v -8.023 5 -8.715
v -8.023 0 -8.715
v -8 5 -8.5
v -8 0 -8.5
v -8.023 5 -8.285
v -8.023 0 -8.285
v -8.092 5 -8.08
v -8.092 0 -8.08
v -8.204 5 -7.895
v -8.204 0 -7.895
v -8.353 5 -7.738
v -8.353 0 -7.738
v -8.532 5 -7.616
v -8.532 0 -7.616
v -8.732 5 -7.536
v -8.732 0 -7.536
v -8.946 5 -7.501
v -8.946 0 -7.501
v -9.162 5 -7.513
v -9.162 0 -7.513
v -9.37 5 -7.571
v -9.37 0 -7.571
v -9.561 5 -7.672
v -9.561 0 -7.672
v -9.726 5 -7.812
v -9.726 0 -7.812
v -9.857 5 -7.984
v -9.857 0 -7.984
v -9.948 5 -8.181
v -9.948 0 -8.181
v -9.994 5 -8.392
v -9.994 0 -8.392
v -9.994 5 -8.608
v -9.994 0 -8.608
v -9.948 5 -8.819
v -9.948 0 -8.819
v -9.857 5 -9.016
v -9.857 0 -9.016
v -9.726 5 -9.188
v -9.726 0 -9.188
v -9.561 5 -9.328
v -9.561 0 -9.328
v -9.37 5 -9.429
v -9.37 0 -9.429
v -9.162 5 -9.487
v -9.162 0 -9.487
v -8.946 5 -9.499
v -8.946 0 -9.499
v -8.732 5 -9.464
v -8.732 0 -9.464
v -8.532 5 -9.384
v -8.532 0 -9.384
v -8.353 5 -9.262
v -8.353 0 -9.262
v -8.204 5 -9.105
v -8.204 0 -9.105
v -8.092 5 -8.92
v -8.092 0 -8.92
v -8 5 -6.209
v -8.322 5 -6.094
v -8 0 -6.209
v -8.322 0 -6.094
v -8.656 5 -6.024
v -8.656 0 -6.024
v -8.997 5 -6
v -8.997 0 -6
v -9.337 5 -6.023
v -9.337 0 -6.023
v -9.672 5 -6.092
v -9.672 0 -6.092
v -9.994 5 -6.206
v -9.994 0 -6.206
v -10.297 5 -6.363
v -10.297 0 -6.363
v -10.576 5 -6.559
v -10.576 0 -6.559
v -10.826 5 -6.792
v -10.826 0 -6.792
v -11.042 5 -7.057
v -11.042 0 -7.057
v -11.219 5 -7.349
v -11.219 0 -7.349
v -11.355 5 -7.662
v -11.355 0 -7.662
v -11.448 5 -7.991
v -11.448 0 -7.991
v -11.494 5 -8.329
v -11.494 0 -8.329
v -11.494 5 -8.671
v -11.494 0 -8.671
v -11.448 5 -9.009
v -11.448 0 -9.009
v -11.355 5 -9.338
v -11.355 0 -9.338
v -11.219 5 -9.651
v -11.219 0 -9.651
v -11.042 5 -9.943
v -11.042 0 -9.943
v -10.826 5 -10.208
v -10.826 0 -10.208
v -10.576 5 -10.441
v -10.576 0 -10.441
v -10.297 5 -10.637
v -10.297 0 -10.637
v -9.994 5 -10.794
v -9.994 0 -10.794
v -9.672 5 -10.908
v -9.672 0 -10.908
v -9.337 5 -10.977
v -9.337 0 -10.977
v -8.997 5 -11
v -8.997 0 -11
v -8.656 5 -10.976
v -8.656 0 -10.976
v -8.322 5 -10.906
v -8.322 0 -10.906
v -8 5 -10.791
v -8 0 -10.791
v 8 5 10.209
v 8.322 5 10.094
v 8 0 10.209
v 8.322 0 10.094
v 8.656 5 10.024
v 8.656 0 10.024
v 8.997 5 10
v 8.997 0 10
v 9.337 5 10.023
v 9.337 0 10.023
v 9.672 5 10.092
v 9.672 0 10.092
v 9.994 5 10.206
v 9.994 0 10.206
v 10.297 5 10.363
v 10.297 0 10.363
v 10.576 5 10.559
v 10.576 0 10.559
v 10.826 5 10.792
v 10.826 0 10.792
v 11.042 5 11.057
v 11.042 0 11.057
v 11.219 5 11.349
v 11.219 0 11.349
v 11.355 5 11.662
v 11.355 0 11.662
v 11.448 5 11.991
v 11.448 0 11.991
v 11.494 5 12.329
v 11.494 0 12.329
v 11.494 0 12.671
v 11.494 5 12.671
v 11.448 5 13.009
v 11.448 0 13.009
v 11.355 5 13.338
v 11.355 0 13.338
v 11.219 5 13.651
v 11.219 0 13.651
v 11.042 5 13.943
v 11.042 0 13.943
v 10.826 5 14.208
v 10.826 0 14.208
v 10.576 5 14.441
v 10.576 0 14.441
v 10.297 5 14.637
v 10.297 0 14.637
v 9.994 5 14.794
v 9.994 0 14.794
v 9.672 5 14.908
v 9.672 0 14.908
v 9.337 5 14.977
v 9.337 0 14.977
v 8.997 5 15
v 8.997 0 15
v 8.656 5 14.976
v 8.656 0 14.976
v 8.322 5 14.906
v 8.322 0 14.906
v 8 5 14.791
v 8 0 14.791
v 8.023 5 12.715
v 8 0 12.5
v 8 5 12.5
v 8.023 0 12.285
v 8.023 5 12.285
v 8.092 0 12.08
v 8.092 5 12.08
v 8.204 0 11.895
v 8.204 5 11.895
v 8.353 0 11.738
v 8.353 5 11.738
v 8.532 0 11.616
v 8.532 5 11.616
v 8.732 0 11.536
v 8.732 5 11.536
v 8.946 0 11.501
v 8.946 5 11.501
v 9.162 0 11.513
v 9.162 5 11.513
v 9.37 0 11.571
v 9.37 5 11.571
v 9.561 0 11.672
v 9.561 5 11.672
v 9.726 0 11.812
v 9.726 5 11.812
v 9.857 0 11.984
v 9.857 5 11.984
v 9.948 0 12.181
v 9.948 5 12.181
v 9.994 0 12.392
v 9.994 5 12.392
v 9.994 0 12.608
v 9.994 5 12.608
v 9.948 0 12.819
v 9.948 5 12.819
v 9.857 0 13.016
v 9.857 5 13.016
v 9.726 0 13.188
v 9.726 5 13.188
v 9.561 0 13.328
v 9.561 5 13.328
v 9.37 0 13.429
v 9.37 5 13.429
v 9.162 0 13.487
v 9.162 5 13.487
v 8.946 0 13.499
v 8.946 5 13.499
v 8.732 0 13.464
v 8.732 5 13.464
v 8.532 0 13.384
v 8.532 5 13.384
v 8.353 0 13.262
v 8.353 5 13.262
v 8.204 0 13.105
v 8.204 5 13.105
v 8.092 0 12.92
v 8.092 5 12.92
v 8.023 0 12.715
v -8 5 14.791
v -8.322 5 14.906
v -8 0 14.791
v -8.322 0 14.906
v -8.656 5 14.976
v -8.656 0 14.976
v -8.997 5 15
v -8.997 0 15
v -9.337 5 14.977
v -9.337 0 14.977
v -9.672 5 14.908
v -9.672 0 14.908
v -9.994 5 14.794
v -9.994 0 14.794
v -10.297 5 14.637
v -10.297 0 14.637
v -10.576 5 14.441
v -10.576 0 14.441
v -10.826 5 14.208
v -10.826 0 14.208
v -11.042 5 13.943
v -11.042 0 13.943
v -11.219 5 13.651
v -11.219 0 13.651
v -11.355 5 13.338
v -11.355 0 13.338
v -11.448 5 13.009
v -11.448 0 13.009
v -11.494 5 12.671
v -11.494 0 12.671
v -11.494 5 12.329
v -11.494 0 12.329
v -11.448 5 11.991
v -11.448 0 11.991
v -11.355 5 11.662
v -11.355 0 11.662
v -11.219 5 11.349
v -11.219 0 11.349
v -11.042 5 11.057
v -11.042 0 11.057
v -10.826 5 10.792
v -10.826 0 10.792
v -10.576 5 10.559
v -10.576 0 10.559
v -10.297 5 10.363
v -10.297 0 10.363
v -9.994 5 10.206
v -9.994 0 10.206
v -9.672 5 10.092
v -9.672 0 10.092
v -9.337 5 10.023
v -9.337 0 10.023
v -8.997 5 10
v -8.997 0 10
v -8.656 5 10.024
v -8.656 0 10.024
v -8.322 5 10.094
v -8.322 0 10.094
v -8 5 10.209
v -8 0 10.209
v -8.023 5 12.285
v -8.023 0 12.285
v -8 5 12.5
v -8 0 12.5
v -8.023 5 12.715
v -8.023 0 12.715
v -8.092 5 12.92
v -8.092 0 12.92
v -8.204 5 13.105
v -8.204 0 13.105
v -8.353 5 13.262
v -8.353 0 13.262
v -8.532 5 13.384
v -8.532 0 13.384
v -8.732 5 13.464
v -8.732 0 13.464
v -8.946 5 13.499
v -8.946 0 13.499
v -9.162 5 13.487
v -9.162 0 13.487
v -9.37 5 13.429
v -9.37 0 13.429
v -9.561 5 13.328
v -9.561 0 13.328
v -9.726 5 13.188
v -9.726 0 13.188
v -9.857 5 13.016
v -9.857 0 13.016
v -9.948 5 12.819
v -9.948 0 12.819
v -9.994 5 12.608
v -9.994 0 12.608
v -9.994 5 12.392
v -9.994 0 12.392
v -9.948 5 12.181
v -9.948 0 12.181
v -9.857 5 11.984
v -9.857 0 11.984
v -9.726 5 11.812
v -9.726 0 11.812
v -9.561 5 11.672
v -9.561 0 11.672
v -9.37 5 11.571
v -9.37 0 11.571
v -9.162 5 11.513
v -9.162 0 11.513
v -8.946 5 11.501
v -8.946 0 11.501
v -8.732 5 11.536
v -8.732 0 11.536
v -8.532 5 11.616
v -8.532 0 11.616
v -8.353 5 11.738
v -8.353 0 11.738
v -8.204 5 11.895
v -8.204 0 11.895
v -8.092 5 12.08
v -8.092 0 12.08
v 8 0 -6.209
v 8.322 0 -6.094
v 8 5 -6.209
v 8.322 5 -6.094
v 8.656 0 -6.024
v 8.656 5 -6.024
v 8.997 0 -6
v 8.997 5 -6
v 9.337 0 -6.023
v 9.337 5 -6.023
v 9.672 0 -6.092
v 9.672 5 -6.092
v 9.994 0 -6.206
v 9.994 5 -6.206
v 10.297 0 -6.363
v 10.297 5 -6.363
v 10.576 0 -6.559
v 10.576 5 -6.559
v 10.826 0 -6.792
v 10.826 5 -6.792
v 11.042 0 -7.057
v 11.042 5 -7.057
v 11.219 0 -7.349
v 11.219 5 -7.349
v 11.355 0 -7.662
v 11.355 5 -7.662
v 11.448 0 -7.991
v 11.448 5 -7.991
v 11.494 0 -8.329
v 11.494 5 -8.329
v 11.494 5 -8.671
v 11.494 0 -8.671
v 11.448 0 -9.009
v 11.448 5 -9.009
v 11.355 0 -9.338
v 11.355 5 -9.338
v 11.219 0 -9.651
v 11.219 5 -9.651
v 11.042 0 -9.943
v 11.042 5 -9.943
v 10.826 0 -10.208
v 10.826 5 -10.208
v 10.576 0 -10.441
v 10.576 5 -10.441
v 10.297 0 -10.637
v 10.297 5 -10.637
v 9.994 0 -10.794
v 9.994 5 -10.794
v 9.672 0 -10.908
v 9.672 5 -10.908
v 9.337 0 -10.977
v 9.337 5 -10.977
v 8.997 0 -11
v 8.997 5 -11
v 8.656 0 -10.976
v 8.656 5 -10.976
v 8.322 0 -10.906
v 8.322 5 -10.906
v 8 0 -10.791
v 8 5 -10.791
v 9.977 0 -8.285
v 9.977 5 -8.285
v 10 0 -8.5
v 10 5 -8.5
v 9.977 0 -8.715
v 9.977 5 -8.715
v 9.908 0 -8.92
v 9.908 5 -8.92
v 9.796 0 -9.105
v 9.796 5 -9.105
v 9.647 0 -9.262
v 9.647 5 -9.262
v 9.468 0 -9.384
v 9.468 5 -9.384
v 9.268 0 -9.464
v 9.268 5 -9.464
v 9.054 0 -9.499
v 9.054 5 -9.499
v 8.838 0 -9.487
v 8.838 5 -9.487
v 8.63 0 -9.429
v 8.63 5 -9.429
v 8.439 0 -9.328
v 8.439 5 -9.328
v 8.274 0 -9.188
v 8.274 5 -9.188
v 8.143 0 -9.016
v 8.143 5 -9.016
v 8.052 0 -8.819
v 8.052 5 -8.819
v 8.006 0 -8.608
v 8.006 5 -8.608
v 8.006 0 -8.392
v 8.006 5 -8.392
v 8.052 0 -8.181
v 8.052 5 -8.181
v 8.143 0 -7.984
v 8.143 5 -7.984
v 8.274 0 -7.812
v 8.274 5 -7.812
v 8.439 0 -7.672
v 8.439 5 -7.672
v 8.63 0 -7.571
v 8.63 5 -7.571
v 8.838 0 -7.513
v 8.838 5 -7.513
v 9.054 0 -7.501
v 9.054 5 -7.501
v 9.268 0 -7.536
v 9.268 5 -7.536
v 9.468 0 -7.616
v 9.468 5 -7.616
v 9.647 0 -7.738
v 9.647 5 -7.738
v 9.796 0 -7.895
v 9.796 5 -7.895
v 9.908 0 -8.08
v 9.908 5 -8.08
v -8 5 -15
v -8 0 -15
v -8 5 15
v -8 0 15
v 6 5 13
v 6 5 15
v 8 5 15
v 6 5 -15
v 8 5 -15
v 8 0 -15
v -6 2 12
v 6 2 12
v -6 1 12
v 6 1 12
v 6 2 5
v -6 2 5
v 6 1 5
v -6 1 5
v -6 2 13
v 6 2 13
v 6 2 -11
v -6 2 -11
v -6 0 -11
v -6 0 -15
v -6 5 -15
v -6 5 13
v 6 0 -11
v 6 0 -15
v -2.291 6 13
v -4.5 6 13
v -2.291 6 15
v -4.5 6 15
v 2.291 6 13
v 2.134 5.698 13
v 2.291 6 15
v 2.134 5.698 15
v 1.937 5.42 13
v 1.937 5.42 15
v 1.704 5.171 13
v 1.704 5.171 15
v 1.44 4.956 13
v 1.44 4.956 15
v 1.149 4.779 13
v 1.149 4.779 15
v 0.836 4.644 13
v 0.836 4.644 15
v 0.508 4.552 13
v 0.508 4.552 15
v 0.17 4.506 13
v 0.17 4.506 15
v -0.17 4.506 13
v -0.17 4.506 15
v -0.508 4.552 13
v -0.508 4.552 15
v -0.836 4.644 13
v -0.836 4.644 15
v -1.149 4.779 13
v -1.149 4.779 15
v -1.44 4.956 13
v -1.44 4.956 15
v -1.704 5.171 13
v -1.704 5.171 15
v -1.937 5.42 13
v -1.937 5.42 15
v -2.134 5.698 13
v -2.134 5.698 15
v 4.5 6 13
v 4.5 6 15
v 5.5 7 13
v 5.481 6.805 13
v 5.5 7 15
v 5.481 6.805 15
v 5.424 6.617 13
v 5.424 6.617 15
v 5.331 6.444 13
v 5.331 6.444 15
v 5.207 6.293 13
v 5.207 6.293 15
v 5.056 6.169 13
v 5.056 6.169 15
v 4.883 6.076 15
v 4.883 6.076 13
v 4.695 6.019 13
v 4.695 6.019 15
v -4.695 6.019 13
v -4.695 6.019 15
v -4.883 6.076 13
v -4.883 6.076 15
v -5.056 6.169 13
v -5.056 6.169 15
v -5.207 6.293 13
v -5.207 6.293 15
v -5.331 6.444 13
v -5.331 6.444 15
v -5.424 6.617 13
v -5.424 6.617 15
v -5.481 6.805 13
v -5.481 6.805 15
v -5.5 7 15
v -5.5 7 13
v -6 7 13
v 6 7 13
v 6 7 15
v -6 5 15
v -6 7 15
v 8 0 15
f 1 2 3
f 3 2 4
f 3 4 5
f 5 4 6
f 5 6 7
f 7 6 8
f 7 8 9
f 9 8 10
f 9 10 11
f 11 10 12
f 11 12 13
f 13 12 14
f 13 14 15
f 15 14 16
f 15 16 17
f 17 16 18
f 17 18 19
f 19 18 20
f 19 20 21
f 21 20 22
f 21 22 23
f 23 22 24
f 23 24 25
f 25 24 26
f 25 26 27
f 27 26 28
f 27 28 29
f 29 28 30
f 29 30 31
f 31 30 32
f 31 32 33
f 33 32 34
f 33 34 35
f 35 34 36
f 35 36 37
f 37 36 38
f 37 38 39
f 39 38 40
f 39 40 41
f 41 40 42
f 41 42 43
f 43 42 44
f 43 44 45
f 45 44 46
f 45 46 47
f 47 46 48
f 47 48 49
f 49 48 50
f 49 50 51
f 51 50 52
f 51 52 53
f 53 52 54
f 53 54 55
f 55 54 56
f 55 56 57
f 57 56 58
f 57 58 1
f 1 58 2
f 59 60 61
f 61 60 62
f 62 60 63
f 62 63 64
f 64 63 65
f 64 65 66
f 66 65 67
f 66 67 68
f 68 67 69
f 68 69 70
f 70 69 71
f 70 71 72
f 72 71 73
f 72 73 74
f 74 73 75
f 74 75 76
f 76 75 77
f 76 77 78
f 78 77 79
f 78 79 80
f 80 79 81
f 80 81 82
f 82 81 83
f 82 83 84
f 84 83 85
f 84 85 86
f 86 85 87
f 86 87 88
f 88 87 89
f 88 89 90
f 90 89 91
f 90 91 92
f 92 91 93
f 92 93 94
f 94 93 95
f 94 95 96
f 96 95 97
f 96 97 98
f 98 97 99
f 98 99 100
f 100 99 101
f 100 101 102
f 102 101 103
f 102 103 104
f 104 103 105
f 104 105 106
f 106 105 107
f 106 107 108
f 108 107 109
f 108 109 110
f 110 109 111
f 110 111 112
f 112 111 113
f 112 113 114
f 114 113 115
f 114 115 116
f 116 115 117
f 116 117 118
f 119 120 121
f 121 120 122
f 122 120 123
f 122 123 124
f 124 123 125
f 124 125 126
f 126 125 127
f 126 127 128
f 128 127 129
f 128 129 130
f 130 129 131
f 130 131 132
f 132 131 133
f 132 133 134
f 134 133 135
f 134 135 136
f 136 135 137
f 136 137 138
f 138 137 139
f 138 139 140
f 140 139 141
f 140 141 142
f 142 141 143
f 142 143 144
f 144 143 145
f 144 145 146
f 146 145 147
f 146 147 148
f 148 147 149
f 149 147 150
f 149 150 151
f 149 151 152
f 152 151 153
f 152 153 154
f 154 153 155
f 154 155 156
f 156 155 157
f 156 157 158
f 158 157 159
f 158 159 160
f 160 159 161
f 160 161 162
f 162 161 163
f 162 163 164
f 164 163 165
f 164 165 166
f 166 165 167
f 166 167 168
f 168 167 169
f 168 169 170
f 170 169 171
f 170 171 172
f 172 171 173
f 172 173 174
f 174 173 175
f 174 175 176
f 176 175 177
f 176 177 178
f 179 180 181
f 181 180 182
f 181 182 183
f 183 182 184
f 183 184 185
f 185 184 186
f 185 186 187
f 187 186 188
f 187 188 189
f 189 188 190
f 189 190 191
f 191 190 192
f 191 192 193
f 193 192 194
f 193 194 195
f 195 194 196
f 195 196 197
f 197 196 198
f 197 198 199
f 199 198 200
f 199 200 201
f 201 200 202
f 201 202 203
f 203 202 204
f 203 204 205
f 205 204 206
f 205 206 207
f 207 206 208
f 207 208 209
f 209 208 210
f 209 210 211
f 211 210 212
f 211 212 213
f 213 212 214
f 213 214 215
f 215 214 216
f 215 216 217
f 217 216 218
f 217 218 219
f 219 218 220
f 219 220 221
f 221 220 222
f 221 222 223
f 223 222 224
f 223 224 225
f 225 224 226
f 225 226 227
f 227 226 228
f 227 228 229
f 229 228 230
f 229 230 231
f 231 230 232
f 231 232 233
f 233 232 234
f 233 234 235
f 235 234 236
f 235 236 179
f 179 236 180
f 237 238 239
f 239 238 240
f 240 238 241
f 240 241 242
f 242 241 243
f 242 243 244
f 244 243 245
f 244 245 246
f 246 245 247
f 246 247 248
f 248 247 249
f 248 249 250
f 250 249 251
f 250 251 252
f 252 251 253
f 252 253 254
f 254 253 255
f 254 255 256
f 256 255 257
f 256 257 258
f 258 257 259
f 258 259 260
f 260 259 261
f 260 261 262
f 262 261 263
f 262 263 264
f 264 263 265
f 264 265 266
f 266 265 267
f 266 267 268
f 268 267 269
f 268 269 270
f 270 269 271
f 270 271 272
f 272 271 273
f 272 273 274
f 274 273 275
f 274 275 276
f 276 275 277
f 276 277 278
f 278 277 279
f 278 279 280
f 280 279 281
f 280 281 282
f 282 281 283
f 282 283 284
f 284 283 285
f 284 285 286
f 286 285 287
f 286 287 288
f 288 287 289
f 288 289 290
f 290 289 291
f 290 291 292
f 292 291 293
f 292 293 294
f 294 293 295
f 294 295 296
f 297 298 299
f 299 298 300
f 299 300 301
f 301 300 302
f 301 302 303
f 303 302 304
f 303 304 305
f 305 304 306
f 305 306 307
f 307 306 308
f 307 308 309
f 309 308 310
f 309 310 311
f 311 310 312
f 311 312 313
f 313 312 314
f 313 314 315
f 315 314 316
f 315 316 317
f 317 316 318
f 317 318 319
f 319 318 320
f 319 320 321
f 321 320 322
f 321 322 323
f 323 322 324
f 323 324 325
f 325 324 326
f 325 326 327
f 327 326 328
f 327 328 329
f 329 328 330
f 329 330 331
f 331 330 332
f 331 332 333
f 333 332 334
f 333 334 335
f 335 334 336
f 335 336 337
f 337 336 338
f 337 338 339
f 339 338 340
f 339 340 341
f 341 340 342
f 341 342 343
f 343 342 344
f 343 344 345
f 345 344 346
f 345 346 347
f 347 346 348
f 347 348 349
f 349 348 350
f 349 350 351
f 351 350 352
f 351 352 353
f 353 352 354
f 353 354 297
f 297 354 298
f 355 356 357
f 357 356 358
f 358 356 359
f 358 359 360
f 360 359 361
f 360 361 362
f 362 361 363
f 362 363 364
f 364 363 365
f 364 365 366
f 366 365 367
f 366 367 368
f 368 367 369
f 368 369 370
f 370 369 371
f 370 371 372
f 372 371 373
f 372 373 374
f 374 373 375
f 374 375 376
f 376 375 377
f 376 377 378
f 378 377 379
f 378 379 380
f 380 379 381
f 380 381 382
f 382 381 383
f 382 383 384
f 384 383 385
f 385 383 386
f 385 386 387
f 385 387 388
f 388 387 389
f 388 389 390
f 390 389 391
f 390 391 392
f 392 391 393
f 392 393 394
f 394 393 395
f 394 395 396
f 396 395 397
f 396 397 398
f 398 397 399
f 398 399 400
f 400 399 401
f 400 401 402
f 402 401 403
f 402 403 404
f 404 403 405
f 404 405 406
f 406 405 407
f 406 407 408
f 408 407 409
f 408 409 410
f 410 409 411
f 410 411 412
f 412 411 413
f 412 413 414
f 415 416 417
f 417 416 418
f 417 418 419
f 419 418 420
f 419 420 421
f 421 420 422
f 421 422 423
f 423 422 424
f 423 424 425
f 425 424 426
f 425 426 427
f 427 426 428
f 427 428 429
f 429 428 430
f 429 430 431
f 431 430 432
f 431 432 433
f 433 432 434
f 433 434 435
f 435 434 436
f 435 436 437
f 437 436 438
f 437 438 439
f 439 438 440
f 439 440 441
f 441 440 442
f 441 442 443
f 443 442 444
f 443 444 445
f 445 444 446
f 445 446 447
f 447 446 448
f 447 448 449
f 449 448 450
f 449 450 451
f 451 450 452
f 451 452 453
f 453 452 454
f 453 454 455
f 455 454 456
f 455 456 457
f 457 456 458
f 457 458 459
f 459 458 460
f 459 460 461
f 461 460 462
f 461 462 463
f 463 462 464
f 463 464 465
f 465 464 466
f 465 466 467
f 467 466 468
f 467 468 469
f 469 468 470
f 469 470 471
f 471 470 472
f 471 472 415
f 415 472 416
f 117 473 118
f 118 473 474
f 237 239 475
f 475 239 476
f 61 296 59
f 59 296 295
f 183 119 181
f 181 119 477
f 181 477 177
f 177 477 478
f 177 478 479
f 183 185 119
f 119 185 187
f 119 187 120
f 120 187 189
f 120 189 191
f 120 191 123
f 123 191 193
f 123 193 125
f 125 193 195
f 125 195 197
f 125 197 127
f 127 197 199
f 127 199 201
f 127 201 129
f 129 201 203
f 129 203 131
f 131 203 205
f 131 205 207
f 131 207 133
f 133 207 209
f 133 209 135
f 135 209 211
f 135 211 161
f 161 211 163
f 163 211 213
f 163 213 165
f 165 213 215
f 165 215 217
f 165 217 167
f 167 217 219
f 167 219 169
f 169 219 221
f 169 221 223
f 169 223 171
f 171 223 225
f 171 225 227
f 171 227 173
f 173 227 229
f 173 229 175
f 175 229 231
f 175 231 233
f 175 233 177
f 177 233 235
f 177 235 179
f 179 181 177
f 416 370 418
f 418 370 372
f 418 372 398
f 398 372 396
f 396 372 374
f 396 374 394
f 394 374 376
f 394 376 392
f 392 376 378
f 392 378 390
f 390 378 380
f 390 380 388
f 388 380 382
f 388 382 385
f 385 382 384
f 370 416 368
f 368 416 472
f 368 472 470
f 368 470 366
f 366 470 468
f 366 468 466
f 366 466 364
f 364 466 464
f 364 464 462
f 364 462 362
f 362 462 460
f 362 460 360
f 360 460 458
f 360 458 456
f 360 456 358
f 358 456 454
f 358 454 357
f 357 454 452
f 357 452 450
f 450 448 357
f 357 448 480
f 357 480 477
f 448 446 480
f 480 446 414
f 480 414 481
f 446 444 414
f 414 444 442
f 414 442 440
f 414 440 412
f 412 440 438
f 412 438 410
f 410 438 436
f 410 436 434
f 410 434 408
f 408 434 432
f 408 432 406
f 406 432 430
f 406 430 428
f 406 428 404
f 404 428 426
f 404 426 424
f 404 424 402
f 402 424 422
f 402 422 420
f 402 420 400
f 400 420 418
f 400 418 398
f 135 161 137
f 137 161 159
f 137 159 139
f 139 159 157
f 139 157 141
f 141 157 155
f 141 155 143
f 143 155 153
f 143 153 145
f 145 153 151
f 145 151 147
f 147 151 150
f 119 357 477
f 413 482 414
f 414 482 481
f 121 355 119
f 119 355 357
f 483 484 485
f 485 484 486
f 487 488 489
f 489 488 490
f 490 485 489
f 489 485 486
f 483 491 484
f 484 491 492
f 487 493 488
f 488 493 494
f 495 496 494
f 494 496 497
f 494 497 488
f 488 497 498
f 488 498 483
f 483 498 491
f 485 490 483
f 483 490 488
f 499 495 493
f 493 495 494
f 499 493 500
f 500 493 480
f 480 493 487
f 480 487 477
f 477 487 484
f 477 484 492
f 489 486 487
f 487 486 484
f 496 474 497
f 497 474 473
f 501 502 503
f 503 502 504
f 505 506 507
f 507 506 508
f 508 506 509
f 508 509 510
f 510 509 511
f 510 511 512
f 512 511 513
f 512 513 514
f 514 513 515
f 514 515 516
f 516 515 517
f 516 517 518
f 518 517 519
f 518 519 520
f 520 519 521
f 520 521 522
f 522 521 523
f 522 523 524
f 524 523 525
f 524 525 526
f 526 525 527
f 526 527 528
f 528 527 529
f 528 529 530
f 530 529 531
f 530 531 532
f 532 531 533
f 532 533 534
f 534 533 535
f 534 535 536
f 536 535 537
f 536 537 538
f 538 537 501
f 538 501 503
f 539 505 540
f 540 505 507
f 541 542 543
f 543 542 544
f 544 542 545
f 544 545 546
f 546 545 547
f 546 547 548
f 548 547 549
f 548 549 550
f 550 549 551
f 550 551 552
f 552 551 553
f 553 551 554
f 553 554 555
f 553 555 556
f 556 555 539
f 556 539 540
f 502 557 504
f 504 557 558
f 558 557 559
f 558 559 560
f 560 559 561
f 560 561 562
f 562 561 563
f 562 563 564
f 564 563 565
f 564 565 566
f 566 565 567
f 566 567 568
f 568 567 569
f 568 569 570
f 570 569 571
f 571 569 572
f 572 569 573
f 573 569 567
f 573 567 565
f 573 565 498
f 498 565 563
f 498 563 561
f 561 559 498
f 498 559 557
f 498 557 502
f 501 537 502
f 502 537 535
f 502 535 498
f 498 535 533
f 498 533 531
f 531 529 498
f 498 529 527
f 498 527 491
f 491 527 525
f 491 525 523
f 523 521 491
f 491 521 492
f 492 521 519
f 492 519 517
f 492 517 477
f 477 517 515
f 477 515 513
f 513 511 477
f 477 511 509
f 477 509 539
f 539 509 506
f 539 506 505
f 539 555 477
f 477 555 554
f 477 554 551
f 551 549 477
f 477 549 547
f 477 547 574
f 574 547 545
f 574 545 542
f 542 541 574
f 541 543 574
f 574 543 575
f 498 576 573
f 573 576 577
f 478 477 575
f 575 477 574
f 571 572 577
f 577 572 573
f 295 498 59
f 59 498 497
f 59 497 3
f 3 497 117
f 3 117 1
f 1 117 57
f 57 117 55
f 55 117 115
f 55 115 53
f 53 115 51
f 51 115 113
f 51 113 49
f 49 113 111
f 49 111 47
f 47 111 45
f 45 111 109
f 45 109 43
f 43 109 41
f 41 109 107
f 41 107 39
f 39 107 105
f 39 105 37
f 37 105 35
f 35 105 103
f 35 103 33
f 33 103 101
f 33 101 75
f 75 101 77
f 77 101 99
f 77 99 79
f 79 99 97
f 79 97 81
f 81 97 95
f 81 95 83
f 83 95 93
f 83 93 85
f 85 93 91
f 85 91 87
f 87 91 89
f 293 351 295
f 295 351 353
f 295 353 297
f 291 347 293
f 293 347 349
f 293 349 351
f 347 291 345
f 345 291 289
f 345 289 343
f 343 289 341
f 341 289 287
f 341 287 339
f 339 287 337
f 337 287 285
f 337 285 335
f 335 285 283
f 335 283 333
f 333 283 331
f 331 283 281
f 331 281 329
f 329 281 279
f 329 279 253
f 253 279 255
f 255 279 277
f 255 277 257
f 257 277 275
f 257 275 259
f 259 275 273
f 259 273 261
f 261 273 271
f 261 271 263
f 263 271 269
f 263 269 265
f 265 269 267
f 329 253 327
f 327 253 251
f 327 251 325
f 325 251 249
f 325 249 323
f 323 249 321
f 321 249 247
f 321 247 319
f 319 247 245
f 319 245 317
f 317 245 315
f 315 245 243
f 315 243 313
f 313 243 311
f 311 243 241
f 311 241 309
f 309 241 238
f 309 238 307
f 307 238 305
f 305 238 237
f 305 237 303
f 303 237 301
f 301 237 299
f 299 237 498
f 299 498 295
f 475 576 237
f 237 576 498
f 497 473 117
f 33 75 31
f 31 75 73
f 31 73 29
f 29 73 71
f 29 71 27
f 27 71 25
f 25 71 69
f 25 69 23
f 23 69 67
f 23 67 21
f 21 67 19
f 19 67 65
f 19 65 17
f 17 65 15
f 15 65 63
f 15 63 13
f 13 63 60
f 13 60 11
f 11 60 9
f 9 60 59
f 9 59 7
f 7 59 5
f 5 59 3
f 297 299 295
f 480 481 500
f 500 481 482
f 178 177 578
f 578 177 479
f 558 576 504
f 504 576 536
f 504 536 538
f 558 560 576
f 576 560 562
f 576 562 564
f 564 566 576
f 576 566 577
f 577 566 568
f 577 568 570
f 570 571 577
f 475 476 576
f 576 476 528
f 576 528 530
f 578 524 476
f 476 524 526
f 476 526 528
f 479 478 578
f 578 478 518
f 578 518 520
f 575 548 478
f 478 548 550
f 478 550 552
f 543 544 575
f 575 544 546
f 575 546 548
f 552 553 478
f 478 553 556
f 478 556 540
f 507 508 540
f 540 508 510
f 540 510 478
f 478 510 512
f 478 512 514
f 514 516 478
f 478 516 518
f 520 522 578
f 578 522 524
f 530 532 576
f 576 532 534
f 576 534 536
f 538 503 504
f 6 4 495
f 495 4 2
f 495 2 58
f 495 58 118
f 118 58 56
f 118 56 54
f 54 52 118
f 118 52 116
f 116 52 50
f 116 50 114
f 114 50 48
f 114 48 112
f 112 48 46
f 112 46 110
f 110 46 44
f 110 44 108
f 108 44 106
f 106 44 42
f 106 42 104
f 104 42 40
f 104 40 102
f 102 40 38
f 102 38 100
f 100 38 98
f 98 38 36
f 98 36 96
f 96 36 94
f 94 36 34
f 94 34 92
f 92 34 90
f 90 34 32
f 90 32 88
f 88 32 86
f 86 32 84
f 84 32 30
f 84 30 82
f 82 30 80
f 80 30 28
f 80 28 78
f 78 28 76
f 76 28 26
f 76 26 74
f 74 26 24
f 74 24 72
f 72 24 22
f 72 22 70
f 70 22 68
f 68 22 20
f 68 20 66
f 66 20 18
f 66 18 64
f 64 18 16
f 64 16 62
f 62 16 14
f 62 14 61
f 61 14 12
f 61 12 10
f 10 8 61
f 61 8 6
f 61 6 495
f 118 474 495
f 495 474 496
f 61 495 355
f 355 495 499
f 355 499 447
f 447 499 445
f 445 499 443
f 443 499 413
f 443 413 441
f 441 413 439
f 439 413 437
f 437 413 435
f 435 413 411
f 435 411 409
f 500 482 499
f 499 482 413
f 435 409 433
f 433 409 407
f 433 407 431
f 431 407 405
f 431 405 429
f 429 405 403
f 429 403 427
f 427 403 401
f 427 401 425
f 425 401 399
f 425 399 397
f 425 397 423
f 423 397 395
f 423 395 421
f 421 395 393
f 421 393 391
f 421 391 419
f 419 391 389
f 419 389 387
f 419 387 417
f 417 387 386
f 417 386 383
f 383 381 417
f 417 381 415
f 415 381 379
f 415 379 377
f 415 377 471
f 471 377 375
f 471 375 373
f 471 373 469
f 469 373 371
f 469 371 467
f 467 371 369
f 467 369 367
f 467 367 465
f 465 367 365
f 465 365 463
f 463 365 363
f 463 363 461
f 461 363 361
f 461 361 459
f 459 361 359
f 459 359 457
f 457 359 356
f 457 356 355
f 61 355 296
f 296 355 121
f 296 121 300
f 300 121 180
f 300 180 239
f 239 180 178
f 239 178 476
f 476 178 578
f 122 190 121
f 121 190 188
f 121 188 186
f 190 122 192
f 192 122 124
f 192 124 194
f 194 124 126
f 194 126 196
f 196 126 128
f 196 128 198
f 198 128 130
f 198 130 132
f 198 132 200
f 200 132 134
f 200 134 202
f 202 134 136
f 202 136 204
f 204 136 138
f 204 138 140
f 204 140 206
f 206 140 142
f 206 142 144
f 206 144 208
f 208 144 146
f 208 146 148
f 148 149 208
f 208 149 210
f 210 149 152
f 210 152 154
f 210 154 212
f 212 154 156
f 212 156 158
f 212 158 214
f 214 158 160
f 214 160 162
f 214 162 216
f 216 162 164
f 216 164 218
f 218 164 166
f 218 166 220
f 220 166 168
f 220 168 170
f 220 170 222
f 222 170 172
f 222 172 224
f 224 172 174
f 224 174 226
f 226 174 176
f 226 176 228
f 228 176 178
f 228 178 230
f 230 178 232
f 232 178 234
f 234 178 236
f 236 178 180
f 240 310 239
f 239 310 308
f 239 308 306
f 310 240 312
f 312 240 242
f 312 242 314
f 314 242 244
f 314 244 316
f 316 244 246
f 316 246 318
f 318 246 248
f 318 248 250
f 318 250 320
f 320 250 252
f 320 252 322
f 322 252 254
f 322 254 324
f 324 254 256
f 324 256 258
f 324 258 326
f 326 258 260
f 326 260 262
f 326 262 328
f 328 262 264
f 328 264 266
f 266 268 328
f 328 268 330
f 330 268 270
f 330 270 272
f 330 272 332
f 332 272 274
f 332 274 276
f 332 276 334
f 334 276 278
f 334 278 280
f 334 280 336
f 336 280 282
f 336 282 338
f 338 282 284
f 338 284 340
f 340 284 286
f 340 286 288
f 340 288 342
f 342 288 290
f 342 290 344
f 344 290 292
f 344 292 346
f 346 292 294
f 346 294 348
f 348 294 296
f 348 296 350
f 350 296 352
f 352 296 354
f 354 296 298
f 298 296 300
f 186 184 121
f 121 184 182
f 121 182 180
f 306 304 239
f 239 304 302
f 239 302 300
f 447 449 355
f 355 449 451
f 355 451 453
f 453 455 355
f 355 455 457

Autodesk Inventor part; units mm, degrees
ref_plane "YZ Plane" through (0, 0, 0) normal (1, 0, 0) x (0, 1, 0)
ref_plane "XZ Plane" through (0, 0, 0) normal (0, 1, 0) x (-1, 0, 0)
ref_plane "XY Plane" through (0, 0, 0) normal (0, 0, 1) x (1, 0, 0)
sketch "Sketch1" plane through (0, 0, 0) normal (0, 1, 0) x (-1, 0, 0)
  line L0 (8, 15) -> (-8, 15)
  line L1 (-8, 15) -> (-8, -15)
  line L2 (-8, -15) -> (8, -15)
  line L3 (8, -15) -> (8, 15)
  line L4 (8, 15) -> (-8, -15) construction
  line L5 (-8, 15) -> (8, -15) construction
  point P0 (0, 0)
  dimension "d0" = 16
  dimension "d1" = 30
extrude "Extrusion1" add sketch "Sketch1" along normal blind 2
sketch "Sketch2" plane through (0, 2, 0) normal (0, 1, 0) x (1, 0, 0)
  line L0 (8, 15) -> (-8, 15) projected
  line L1 (-6, 15) -> (6, 15)
  line L2 (6, 15) -> (6, -13)
  line L3 (6, -13) -> (-6, -13)
  line L4 (-6, -13) -> (-6, 15)
  line L5 (8, -15) -> (8, 15) projected
  line L6 (-8, 15) -> (-8, -15) projected
  line L7 (-8, -15) -> (8, -15) projected
  point P0 (0, 0)
  dimension "d4" = 2
  dimension "d5" = 2
  dimension "d6" = 2
extrude "Extrusion2" add sketch "Sketch2" along normal blind 3 contours L5 L7 L6 L0 L4 L3 L2
sketch "Sketch4" plane through (0, 5, 0) normal (0, 1, 0) x (1, 0, 0)
  line L0 (6, -13) -> (-6, -13) projected
  line L1 (-8, -15) -> (8, -15) projected
  line L2 (-6, -13) -> (6, -13)
  line L3 (6, -13) -> (6, -15)
  line L4 (6, -15) -> (-6, -15)
  line L5 (-6, -15) -> (-6, -13)
  line L6 (6, 15) -> (6, -13) projected
  point P0 (0, 0)
extrude "Extrusion3" add sketch "Sketch4" along normal blind 2
sketch "Sketch3" plane through (-8, 0, 15) normal (0, 0, 1) x (1, 0, 0)
  line L0 (14, 2) -> (2, 2) construction
  line L1 (2, 2) -> (14, 2) construction
  circle A0 centre (8, 7) radius 2.5
  line L2 (8, 11.4) -> (8, -1.9) construction
  line L3 (3.5, 7) -> (12.5, 7) construction
  circle A1 centre (3.5, 7) radius 1
  circle A2 centre (12.5, 7) radius 1
  line L4 (3.5, 8) -> (5.7087, 8)
  line L5 (12.5, 8) -> (10.2913, 8)
  line L6 (12.5, 6) -> (10.2913, 6)
  line L7 (5.7087, 6) -> (3.5, 6)
  point P0 (8, 0)
  dimension "d9" = 5
  dimension "d10" = 5
  dimension "d11" = 9
  dimension "d12" = 2
  dimension "d13" = 2
extrude "Extrusion4" cut sketch "Sketch3" against normal up to next
sketch "Sketch8" plane through (0, 2, 0) normal (0, 1, 0) x (1, 0, 0)
  line L0 (-6, 15) -> (-6, -13) projected
  line L1 (6, -13) -> (6, 15) projected
  line L2 (-6, 15) -> (6, 15)
  line L3 (6, 15) -> (6, 11)
  line L4 (6, 11) -> (-6, 11)
  line L5 (-6, 11) -> (-6, 15)
  line L6 (-2.2913, -13) -> (2.2913, -13) projected
  point P0 (0, 0)
  dimension "d28" = 24
extrude "Extrusion7" cut sketch "Sketch8" against normal up to next
sketch "Sketch9" plane through (0, 2, 0) normal (0, 1, 0) x (1, 0, 0)
  line L0 (-6, 11) -> (-6, -13) projected
  line L1 (6, -13) -> (6, 11) projected
  line L2 (-6, -12) -> (6, -12)
  line L3 (6, -12) -> (6, -5)
  line L4 (6, -5) -> (-6, -5)
  line L5 (-6, -5) -> (-6, -12)
  line L6 (-2.2913, -13) -> (2.2913, -13) projected
  point P0 (0, 0)
  point P1 (-6, -5)
  dimension "d31" = 1
  dimension "d32" = 7
extrude "Extrusion8" cut sketch "Sketch9" against normal blind 1
sketch "Sketch10" plane through (0, 0, 0) normal (0, -1, 0) x (1, 0, 0)
  circle A0 centre (-9, 12.5) radius 1
  circle A1 centre (-9, 12.5) radius 2.5
  line L0 (-8, -15) -> (-8, 15) projected
  line L1 (-8, 15) -> (8, 15) projected
  line L2 (8, 15) -> (8, -15) projected
  line L3 (-8, 15) -> (-6, 15) projected
  circle A2 centre (-9, -8.5) radius 1
  circle A3 centre (-9, -8.5) radius 2.5
  circle A4 centre (9, 12.5) radius 1
  circle A5 centre (9, 12.5) radius 2.5
  circle A6 centre (9, -8.5) radius 1
  circle A7 centre (9, -8.5) radius 2.5
  line L4 (6, -11) -> (-6, -11) projected
  point P0 (0, 0)
  point P1 (-8, -6)
  point P2 (10, 15)
  point P3 (10, -6)
  point P4 (-8, 12.5)
  point P5 (-8, 14.7913)
  point P6 (-8, 10.2087)
  point P7 (-8, -6.2087)
  point P8 (-8, -10.7913)
  point P9 (-8, -8.5)
  point P10 (8, 14.7913)
  point P11 (8, 12.5)
  point P12 (8, 10.2087)
  dimension "d35" = 2
  dimension "d36" = 1.5
  dimension "d38" = 16
  dimension "d41" = 21
  dimension "d44" = 18
  dimension "d49" = 26
extrude "Extrusion9" add sketch "Sketch10" against normal up to surface (5 mm away) contours L0 A1 | A7 L2 | L2 A7 | A5 L2 | L0 A3 picked at (-10.9649, 12.2158) picked at (10.9649, 12.2158) picked at (-10.9649, -8.7842)
equation "\"d5\" = d4"
equation "\"d6\" = d4"
equation "\"d41\" = -2 * d36 + d49 - d35"
properties part number "motor_top"
